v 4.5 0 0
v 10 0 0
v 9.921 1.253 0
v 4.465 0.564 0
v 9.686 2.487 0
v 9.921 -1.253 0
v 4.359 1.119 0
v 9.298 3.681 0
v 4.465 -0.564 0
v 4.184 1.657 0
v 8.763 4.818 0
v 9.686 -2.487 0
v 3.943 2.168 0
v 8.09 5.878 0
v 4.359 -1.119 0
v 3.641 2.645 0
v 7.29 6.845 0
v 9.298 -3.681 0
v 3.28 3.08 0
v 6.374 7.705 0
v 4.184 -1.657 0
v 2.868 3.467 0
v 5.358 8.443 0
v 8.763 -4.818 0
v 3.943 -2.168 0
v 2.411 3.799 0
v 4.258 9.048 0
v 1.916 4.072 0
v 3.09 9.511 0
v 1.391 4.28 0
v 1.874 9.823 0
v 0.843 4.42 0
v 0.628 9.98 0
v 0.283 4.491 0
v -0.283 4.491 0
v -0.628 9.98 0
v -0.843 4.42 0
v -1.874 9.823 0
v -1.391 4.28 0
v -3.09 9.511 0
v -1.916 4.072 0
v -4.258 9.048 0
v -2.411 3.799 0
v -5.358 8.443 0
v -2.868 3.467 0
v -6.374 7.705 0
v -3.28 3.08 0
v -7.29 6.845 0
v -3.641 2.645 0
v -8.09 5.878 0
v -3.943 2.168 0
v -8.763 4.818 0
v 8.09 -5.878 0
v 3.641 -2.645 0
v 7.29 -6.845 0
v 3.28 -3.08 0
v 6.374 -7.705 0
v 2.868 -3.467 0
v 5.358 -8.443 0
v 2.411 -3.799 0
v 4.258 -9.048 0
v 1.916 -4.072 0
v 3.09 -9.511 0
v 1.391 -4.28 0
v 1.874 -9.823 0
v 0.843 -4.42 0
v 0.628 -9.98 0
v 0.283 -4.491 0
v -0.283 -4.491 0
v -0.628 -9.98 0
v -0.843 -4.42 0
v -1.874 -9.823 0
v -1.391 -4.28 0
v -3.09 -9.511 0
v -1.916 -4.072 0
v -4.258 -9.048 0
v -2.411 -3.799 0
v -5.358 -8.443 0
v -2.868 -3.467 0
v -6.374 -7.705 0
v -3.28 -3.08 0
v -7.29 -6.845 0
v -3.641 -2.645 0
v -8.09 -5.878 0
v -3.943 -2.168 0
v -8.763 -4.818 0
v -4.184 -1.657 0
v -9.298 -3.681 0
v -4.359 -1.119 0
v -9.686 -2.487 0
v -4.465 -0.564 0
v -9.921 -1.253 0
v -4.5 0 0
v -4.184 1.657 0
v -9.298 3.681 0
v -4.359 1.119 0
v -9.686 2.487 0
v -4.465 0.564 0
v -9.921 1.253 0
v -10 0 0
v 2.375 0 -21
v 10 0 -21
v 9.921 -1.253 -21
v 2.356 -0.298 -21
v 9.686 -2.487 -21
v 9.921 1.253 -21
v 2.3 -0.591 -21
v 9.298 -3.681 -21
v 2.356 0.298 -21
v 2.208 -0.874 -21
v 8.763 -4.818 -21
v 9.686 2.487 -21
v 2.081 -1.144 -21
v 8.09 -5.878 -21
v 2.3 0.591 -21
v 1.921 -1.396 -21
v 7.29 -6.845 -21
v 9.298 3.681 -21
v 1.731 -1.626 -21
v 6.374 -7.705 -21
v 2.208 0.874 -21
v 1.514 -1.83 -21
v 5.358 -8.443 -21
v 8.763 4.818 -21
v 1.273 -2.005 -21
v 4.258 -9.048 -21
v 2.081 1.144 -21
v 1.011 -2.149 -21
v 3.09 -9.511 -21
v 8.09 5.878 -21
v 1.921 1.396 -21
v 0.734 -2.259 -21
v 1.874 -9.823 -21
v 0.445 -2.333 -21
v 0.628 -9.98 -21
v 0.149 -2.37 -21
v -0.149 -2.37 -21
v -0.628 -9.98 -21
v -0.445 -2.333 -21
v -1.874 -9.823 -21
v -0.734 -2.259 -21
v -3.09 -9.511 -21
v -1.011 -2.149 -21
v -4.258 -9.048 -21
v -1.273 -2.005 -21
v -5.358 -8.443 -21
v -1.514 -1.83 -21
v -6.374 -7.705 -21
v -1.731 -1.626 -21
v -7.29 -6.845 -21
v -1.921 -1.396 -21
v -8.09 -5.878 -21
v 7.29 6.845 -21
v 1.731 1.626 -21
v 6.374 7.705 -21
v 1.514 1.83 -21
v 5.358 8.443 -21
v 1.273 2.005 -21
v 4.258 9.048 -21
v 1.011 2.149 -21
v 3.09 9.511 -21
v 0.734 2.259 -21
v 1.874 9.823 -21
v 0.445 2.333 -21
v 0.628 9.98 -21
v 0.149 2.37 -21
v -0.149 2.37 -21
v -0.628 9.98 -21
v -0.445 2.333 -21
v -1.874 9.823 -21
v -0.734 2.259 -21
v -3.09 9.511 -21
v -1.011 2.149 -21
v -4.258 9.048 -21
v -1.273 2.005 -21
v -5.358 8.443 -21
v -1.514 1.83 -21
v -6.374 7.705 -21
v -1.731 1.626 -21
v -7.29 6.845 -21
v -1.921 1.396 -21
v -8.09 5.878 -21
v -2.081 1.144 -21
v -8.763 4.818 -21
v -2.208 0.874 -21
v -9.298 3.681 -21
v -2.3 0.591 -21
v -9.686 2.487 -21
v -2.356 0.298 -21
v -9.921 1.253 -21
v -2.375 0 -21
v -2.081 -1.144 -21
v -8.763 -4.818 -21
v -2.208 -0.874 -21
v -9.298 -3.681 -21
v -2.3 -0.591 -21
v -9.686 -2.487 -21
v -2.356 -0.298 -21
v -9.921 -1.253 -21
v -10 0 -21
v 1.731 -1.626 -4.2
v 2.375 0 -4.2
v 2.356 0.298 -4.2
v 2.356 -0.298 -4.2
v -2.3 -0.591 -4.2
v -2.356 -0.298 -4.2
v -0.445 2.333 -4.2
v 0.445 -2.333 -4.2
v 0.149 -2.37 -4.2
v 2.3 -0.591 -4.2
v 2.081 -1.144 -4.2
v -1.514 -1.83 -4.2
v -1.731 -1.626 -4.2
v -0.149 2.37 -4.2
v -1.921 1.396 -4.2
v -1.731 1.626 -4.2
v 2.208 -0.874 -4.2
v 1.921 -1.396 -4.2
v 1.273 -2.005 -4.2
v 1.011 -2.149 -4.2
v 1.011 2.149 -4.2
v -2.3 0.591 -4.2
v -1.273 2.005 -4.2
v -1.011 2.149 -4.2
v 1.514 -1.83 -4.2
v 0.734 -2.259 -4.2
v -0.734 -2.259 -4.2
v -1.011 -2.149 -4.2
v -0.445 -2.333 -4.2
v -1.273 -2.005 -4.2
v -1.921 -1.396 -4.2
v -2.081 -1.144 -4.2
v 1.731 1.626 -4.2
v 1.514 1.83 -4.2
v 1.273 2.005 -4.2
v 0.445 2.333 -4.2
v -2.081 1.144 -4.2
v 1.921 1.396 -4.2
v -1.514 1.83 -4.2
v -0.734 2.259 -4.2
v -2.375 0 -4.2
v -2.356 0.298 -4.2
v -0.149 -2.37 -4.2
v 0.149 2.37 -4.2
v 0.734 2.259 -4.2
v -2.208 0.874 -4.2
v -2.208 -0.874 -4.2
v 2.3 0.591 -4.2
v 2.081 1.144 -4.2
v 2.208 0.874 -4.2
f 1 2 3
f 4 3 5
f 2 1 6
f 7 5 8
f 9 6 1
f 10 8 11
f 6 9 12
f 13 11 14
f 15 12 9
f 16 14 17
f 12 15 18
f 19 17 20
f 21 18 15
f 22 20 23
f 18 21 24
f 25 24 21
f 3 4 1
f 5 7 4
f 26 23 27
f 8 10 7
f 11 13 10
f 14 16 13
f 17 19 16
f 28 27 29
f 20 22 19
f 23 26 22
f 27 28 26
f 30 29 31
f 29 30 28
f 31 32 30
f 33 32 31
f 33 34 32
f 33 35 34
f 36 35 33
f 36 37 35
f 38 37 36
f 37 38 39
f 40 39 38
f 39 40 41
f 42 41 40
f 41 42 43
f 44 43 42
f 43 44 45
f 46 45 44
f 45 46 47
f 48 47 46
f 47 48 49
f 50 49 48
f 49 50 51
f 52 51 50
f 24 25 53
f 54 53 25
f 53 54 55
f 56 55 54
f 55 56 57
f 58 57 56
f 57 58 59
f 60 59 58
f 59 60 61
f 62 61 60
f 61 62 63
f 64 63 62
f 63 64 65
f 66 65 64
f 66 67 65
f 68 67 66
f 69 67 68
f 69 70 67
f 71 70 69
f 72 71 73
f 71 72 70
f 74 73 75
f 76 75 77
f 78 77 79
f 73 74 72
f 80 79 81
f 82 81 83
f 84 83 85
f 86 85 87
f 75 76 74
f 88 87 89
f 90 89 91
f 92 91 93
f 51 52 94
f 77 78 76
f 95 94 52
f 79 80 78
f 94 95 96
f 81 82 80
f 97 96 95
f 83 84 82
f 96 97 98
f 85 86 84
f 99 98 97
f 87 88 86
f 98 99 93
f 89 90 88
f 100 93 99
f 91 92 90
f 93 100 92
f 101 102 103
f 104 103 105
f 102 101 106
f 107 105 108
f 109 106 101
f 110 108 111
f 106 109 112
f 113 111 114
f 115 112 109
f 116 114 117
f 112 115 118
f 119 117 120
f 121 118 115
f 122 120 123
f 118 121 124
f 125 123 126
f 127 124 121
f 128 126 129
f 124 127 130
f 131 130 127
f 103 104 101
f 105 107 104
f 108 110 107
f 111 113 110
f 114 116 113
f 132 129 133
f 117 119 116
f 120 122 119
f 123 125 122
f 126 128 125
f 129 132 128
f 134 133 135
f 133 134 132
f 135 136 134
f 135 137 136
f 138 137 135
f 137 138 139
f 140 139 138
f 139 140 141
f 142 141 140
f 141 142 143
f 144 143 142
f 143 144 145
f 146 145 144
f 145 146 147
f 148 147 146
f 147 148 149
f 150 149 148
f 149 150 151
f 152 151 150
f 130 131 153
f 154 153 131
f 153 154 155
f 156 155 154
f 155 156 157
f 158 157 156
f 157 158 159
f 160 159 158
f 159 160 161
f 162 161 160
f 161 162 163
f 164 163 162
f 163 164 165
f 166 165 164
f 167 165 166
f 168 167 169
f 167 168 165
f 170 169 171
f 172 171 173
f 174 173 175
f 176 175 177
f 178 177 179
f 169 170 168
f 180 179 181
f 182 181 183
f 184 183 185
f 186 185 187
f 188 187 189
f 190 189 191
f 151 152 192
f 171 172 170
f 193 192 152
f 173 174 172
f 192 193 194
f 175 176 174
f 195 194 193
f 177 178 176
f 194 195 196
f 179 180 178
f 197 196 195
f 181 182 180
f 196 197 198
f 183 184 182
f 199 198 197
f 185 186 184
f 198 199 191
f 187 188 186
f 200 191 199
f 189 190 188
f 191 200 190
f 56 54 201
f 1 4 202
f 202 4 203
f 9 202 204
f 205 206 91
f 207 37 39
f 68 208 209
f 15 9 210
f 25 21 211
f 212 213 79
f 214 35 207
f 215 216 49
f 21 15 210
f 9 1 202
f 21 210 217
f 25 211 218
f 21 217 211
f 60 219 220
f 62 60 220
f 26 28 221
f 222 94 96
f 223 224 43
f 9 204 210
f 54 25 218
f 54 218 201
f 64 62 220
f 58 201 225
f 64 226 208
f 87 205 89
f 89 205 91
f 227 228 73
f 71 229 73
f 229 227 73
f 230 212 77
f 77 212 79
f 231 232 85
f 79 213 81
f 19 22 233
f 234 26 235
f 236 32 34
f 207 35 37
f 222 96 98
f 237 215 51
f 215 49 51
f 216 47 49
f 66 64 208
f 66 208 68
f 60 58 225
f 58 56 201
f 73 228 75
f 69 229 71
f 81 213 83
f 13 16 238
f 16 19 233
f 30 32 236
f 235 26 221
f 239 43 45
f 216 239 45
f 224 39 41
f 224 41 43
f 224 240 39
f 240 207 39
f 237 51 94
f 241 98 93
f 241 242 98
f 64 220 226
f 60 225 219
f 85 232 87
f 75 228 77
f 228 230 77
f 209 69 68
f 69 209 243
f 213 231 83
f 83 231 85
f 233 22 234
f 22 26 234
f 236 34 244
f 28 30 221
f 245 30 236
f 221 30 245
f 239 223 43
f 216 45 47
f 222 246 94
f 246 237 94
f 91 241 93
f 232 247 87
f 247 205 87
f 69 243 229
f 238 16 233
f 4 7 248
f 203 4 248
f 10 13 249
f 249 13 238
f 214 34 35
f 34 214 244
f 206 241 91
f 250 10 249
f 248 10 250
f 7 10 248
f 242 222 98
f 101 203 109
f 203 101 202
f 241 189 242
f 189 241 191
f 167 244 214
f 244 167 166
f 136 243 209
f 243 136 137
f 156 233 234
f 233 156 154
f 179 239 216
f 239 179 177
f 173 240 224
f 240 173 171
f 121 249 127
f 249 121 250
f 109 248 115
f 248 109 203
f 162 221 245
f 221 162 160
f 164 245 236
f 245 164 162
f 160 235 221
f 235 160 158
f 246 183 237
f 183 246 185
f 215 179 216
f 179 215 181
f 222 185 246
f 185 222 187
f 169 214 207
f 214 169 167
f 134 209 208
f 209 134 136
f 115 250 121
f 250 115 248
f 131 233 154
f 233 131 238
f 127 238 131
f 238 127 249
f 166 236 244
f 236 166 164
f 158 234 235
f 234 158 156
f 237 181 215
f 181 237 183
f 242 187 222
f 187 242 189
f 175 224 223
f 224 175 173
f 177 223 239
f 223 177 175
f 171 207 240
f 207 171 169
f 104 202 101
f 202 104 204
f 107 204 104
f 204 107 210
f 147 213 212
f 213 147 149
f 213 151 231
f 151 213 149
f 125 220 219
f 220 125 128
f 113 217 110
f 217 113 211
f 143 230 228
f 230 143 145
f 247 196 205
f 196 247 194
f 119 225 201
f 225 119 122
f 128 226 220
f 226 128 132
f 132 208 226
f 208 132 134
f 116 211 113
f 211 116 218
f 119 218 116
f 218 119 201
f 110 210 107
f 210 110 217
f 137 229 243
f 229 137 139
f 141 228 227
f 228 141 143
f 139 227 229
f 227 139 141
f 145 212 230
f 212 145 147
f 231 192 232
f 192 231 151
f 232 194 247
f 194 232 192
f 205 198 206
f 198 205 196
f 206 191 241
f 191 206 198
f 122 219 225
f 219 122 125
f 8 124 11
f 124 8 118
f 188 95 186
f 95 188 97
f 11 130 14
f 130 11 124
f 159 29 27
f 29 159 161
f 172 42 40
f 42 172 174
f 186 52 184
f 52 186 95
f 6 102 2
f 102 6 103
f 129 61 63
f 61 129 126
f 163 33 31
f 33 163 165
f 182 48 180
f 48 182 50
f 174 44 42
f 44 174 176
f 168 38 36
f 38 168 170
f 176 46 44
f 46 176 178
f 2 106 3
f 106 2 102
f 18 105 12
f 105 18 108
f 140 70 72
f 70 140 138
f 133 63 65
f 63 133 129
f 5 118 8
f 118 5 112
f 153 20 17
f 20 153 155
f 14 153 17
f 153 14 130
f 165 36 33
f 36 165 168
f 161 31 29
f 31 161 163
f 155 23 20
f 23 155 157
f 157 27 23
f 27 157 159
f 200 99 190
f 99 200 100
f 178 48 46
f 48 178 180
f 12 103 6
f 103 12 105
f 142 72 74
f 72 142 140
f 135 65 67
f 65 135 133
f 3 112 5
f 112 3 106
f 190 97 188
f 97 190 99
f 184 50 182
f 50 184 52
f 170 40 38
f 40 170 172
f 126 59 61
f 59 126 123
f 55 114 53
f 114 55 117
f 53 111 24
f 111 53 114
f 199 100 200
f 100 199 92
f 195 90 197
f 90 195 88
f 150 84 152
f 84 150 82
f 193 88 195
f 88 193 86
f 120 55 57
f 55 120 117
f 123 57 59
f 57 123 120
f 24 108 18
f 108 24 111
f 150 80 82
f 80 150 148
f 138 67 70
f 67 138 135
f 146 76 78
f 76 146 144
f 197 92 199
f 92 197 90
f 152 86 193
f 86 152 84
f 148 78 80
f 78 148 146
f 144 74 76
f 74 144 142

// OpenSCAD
$fn = 50;


difference() {
	union() {
		translate(v = [0, 0, -21.0000000000]) {
			cylinder(h = 21, r = 10.0000000000);
		}
		cylinder(h = 0, r = 13.0000000000);
	}
	union() {
		translate(v = [0, 0, 0]) {
			rotate(a = [0, 0, 0]) {
				difference() {
					union() {
						#translate(v = [0, 0, -21.0000000000]) {
							cylinder(h = 21, r = 2.2500000000);
						}
						#translate(v = [0, 0, -4.2000000000]) {
							cylinder(h = 4.2000000000, r1 = 2.3750000000, r2 = 4.5000000000);
						}
						#translate(v = [0, 0, -21.0000000000]) {
							cylinder(h = 21, r = 2.3750000000);
						}
						#translate(v = [0, 0, -21.0000000000]) {
							cylinder(h = 21, r = 2.2500000000);
						}
					}
					union();
				}
			}
		}
	}
}
